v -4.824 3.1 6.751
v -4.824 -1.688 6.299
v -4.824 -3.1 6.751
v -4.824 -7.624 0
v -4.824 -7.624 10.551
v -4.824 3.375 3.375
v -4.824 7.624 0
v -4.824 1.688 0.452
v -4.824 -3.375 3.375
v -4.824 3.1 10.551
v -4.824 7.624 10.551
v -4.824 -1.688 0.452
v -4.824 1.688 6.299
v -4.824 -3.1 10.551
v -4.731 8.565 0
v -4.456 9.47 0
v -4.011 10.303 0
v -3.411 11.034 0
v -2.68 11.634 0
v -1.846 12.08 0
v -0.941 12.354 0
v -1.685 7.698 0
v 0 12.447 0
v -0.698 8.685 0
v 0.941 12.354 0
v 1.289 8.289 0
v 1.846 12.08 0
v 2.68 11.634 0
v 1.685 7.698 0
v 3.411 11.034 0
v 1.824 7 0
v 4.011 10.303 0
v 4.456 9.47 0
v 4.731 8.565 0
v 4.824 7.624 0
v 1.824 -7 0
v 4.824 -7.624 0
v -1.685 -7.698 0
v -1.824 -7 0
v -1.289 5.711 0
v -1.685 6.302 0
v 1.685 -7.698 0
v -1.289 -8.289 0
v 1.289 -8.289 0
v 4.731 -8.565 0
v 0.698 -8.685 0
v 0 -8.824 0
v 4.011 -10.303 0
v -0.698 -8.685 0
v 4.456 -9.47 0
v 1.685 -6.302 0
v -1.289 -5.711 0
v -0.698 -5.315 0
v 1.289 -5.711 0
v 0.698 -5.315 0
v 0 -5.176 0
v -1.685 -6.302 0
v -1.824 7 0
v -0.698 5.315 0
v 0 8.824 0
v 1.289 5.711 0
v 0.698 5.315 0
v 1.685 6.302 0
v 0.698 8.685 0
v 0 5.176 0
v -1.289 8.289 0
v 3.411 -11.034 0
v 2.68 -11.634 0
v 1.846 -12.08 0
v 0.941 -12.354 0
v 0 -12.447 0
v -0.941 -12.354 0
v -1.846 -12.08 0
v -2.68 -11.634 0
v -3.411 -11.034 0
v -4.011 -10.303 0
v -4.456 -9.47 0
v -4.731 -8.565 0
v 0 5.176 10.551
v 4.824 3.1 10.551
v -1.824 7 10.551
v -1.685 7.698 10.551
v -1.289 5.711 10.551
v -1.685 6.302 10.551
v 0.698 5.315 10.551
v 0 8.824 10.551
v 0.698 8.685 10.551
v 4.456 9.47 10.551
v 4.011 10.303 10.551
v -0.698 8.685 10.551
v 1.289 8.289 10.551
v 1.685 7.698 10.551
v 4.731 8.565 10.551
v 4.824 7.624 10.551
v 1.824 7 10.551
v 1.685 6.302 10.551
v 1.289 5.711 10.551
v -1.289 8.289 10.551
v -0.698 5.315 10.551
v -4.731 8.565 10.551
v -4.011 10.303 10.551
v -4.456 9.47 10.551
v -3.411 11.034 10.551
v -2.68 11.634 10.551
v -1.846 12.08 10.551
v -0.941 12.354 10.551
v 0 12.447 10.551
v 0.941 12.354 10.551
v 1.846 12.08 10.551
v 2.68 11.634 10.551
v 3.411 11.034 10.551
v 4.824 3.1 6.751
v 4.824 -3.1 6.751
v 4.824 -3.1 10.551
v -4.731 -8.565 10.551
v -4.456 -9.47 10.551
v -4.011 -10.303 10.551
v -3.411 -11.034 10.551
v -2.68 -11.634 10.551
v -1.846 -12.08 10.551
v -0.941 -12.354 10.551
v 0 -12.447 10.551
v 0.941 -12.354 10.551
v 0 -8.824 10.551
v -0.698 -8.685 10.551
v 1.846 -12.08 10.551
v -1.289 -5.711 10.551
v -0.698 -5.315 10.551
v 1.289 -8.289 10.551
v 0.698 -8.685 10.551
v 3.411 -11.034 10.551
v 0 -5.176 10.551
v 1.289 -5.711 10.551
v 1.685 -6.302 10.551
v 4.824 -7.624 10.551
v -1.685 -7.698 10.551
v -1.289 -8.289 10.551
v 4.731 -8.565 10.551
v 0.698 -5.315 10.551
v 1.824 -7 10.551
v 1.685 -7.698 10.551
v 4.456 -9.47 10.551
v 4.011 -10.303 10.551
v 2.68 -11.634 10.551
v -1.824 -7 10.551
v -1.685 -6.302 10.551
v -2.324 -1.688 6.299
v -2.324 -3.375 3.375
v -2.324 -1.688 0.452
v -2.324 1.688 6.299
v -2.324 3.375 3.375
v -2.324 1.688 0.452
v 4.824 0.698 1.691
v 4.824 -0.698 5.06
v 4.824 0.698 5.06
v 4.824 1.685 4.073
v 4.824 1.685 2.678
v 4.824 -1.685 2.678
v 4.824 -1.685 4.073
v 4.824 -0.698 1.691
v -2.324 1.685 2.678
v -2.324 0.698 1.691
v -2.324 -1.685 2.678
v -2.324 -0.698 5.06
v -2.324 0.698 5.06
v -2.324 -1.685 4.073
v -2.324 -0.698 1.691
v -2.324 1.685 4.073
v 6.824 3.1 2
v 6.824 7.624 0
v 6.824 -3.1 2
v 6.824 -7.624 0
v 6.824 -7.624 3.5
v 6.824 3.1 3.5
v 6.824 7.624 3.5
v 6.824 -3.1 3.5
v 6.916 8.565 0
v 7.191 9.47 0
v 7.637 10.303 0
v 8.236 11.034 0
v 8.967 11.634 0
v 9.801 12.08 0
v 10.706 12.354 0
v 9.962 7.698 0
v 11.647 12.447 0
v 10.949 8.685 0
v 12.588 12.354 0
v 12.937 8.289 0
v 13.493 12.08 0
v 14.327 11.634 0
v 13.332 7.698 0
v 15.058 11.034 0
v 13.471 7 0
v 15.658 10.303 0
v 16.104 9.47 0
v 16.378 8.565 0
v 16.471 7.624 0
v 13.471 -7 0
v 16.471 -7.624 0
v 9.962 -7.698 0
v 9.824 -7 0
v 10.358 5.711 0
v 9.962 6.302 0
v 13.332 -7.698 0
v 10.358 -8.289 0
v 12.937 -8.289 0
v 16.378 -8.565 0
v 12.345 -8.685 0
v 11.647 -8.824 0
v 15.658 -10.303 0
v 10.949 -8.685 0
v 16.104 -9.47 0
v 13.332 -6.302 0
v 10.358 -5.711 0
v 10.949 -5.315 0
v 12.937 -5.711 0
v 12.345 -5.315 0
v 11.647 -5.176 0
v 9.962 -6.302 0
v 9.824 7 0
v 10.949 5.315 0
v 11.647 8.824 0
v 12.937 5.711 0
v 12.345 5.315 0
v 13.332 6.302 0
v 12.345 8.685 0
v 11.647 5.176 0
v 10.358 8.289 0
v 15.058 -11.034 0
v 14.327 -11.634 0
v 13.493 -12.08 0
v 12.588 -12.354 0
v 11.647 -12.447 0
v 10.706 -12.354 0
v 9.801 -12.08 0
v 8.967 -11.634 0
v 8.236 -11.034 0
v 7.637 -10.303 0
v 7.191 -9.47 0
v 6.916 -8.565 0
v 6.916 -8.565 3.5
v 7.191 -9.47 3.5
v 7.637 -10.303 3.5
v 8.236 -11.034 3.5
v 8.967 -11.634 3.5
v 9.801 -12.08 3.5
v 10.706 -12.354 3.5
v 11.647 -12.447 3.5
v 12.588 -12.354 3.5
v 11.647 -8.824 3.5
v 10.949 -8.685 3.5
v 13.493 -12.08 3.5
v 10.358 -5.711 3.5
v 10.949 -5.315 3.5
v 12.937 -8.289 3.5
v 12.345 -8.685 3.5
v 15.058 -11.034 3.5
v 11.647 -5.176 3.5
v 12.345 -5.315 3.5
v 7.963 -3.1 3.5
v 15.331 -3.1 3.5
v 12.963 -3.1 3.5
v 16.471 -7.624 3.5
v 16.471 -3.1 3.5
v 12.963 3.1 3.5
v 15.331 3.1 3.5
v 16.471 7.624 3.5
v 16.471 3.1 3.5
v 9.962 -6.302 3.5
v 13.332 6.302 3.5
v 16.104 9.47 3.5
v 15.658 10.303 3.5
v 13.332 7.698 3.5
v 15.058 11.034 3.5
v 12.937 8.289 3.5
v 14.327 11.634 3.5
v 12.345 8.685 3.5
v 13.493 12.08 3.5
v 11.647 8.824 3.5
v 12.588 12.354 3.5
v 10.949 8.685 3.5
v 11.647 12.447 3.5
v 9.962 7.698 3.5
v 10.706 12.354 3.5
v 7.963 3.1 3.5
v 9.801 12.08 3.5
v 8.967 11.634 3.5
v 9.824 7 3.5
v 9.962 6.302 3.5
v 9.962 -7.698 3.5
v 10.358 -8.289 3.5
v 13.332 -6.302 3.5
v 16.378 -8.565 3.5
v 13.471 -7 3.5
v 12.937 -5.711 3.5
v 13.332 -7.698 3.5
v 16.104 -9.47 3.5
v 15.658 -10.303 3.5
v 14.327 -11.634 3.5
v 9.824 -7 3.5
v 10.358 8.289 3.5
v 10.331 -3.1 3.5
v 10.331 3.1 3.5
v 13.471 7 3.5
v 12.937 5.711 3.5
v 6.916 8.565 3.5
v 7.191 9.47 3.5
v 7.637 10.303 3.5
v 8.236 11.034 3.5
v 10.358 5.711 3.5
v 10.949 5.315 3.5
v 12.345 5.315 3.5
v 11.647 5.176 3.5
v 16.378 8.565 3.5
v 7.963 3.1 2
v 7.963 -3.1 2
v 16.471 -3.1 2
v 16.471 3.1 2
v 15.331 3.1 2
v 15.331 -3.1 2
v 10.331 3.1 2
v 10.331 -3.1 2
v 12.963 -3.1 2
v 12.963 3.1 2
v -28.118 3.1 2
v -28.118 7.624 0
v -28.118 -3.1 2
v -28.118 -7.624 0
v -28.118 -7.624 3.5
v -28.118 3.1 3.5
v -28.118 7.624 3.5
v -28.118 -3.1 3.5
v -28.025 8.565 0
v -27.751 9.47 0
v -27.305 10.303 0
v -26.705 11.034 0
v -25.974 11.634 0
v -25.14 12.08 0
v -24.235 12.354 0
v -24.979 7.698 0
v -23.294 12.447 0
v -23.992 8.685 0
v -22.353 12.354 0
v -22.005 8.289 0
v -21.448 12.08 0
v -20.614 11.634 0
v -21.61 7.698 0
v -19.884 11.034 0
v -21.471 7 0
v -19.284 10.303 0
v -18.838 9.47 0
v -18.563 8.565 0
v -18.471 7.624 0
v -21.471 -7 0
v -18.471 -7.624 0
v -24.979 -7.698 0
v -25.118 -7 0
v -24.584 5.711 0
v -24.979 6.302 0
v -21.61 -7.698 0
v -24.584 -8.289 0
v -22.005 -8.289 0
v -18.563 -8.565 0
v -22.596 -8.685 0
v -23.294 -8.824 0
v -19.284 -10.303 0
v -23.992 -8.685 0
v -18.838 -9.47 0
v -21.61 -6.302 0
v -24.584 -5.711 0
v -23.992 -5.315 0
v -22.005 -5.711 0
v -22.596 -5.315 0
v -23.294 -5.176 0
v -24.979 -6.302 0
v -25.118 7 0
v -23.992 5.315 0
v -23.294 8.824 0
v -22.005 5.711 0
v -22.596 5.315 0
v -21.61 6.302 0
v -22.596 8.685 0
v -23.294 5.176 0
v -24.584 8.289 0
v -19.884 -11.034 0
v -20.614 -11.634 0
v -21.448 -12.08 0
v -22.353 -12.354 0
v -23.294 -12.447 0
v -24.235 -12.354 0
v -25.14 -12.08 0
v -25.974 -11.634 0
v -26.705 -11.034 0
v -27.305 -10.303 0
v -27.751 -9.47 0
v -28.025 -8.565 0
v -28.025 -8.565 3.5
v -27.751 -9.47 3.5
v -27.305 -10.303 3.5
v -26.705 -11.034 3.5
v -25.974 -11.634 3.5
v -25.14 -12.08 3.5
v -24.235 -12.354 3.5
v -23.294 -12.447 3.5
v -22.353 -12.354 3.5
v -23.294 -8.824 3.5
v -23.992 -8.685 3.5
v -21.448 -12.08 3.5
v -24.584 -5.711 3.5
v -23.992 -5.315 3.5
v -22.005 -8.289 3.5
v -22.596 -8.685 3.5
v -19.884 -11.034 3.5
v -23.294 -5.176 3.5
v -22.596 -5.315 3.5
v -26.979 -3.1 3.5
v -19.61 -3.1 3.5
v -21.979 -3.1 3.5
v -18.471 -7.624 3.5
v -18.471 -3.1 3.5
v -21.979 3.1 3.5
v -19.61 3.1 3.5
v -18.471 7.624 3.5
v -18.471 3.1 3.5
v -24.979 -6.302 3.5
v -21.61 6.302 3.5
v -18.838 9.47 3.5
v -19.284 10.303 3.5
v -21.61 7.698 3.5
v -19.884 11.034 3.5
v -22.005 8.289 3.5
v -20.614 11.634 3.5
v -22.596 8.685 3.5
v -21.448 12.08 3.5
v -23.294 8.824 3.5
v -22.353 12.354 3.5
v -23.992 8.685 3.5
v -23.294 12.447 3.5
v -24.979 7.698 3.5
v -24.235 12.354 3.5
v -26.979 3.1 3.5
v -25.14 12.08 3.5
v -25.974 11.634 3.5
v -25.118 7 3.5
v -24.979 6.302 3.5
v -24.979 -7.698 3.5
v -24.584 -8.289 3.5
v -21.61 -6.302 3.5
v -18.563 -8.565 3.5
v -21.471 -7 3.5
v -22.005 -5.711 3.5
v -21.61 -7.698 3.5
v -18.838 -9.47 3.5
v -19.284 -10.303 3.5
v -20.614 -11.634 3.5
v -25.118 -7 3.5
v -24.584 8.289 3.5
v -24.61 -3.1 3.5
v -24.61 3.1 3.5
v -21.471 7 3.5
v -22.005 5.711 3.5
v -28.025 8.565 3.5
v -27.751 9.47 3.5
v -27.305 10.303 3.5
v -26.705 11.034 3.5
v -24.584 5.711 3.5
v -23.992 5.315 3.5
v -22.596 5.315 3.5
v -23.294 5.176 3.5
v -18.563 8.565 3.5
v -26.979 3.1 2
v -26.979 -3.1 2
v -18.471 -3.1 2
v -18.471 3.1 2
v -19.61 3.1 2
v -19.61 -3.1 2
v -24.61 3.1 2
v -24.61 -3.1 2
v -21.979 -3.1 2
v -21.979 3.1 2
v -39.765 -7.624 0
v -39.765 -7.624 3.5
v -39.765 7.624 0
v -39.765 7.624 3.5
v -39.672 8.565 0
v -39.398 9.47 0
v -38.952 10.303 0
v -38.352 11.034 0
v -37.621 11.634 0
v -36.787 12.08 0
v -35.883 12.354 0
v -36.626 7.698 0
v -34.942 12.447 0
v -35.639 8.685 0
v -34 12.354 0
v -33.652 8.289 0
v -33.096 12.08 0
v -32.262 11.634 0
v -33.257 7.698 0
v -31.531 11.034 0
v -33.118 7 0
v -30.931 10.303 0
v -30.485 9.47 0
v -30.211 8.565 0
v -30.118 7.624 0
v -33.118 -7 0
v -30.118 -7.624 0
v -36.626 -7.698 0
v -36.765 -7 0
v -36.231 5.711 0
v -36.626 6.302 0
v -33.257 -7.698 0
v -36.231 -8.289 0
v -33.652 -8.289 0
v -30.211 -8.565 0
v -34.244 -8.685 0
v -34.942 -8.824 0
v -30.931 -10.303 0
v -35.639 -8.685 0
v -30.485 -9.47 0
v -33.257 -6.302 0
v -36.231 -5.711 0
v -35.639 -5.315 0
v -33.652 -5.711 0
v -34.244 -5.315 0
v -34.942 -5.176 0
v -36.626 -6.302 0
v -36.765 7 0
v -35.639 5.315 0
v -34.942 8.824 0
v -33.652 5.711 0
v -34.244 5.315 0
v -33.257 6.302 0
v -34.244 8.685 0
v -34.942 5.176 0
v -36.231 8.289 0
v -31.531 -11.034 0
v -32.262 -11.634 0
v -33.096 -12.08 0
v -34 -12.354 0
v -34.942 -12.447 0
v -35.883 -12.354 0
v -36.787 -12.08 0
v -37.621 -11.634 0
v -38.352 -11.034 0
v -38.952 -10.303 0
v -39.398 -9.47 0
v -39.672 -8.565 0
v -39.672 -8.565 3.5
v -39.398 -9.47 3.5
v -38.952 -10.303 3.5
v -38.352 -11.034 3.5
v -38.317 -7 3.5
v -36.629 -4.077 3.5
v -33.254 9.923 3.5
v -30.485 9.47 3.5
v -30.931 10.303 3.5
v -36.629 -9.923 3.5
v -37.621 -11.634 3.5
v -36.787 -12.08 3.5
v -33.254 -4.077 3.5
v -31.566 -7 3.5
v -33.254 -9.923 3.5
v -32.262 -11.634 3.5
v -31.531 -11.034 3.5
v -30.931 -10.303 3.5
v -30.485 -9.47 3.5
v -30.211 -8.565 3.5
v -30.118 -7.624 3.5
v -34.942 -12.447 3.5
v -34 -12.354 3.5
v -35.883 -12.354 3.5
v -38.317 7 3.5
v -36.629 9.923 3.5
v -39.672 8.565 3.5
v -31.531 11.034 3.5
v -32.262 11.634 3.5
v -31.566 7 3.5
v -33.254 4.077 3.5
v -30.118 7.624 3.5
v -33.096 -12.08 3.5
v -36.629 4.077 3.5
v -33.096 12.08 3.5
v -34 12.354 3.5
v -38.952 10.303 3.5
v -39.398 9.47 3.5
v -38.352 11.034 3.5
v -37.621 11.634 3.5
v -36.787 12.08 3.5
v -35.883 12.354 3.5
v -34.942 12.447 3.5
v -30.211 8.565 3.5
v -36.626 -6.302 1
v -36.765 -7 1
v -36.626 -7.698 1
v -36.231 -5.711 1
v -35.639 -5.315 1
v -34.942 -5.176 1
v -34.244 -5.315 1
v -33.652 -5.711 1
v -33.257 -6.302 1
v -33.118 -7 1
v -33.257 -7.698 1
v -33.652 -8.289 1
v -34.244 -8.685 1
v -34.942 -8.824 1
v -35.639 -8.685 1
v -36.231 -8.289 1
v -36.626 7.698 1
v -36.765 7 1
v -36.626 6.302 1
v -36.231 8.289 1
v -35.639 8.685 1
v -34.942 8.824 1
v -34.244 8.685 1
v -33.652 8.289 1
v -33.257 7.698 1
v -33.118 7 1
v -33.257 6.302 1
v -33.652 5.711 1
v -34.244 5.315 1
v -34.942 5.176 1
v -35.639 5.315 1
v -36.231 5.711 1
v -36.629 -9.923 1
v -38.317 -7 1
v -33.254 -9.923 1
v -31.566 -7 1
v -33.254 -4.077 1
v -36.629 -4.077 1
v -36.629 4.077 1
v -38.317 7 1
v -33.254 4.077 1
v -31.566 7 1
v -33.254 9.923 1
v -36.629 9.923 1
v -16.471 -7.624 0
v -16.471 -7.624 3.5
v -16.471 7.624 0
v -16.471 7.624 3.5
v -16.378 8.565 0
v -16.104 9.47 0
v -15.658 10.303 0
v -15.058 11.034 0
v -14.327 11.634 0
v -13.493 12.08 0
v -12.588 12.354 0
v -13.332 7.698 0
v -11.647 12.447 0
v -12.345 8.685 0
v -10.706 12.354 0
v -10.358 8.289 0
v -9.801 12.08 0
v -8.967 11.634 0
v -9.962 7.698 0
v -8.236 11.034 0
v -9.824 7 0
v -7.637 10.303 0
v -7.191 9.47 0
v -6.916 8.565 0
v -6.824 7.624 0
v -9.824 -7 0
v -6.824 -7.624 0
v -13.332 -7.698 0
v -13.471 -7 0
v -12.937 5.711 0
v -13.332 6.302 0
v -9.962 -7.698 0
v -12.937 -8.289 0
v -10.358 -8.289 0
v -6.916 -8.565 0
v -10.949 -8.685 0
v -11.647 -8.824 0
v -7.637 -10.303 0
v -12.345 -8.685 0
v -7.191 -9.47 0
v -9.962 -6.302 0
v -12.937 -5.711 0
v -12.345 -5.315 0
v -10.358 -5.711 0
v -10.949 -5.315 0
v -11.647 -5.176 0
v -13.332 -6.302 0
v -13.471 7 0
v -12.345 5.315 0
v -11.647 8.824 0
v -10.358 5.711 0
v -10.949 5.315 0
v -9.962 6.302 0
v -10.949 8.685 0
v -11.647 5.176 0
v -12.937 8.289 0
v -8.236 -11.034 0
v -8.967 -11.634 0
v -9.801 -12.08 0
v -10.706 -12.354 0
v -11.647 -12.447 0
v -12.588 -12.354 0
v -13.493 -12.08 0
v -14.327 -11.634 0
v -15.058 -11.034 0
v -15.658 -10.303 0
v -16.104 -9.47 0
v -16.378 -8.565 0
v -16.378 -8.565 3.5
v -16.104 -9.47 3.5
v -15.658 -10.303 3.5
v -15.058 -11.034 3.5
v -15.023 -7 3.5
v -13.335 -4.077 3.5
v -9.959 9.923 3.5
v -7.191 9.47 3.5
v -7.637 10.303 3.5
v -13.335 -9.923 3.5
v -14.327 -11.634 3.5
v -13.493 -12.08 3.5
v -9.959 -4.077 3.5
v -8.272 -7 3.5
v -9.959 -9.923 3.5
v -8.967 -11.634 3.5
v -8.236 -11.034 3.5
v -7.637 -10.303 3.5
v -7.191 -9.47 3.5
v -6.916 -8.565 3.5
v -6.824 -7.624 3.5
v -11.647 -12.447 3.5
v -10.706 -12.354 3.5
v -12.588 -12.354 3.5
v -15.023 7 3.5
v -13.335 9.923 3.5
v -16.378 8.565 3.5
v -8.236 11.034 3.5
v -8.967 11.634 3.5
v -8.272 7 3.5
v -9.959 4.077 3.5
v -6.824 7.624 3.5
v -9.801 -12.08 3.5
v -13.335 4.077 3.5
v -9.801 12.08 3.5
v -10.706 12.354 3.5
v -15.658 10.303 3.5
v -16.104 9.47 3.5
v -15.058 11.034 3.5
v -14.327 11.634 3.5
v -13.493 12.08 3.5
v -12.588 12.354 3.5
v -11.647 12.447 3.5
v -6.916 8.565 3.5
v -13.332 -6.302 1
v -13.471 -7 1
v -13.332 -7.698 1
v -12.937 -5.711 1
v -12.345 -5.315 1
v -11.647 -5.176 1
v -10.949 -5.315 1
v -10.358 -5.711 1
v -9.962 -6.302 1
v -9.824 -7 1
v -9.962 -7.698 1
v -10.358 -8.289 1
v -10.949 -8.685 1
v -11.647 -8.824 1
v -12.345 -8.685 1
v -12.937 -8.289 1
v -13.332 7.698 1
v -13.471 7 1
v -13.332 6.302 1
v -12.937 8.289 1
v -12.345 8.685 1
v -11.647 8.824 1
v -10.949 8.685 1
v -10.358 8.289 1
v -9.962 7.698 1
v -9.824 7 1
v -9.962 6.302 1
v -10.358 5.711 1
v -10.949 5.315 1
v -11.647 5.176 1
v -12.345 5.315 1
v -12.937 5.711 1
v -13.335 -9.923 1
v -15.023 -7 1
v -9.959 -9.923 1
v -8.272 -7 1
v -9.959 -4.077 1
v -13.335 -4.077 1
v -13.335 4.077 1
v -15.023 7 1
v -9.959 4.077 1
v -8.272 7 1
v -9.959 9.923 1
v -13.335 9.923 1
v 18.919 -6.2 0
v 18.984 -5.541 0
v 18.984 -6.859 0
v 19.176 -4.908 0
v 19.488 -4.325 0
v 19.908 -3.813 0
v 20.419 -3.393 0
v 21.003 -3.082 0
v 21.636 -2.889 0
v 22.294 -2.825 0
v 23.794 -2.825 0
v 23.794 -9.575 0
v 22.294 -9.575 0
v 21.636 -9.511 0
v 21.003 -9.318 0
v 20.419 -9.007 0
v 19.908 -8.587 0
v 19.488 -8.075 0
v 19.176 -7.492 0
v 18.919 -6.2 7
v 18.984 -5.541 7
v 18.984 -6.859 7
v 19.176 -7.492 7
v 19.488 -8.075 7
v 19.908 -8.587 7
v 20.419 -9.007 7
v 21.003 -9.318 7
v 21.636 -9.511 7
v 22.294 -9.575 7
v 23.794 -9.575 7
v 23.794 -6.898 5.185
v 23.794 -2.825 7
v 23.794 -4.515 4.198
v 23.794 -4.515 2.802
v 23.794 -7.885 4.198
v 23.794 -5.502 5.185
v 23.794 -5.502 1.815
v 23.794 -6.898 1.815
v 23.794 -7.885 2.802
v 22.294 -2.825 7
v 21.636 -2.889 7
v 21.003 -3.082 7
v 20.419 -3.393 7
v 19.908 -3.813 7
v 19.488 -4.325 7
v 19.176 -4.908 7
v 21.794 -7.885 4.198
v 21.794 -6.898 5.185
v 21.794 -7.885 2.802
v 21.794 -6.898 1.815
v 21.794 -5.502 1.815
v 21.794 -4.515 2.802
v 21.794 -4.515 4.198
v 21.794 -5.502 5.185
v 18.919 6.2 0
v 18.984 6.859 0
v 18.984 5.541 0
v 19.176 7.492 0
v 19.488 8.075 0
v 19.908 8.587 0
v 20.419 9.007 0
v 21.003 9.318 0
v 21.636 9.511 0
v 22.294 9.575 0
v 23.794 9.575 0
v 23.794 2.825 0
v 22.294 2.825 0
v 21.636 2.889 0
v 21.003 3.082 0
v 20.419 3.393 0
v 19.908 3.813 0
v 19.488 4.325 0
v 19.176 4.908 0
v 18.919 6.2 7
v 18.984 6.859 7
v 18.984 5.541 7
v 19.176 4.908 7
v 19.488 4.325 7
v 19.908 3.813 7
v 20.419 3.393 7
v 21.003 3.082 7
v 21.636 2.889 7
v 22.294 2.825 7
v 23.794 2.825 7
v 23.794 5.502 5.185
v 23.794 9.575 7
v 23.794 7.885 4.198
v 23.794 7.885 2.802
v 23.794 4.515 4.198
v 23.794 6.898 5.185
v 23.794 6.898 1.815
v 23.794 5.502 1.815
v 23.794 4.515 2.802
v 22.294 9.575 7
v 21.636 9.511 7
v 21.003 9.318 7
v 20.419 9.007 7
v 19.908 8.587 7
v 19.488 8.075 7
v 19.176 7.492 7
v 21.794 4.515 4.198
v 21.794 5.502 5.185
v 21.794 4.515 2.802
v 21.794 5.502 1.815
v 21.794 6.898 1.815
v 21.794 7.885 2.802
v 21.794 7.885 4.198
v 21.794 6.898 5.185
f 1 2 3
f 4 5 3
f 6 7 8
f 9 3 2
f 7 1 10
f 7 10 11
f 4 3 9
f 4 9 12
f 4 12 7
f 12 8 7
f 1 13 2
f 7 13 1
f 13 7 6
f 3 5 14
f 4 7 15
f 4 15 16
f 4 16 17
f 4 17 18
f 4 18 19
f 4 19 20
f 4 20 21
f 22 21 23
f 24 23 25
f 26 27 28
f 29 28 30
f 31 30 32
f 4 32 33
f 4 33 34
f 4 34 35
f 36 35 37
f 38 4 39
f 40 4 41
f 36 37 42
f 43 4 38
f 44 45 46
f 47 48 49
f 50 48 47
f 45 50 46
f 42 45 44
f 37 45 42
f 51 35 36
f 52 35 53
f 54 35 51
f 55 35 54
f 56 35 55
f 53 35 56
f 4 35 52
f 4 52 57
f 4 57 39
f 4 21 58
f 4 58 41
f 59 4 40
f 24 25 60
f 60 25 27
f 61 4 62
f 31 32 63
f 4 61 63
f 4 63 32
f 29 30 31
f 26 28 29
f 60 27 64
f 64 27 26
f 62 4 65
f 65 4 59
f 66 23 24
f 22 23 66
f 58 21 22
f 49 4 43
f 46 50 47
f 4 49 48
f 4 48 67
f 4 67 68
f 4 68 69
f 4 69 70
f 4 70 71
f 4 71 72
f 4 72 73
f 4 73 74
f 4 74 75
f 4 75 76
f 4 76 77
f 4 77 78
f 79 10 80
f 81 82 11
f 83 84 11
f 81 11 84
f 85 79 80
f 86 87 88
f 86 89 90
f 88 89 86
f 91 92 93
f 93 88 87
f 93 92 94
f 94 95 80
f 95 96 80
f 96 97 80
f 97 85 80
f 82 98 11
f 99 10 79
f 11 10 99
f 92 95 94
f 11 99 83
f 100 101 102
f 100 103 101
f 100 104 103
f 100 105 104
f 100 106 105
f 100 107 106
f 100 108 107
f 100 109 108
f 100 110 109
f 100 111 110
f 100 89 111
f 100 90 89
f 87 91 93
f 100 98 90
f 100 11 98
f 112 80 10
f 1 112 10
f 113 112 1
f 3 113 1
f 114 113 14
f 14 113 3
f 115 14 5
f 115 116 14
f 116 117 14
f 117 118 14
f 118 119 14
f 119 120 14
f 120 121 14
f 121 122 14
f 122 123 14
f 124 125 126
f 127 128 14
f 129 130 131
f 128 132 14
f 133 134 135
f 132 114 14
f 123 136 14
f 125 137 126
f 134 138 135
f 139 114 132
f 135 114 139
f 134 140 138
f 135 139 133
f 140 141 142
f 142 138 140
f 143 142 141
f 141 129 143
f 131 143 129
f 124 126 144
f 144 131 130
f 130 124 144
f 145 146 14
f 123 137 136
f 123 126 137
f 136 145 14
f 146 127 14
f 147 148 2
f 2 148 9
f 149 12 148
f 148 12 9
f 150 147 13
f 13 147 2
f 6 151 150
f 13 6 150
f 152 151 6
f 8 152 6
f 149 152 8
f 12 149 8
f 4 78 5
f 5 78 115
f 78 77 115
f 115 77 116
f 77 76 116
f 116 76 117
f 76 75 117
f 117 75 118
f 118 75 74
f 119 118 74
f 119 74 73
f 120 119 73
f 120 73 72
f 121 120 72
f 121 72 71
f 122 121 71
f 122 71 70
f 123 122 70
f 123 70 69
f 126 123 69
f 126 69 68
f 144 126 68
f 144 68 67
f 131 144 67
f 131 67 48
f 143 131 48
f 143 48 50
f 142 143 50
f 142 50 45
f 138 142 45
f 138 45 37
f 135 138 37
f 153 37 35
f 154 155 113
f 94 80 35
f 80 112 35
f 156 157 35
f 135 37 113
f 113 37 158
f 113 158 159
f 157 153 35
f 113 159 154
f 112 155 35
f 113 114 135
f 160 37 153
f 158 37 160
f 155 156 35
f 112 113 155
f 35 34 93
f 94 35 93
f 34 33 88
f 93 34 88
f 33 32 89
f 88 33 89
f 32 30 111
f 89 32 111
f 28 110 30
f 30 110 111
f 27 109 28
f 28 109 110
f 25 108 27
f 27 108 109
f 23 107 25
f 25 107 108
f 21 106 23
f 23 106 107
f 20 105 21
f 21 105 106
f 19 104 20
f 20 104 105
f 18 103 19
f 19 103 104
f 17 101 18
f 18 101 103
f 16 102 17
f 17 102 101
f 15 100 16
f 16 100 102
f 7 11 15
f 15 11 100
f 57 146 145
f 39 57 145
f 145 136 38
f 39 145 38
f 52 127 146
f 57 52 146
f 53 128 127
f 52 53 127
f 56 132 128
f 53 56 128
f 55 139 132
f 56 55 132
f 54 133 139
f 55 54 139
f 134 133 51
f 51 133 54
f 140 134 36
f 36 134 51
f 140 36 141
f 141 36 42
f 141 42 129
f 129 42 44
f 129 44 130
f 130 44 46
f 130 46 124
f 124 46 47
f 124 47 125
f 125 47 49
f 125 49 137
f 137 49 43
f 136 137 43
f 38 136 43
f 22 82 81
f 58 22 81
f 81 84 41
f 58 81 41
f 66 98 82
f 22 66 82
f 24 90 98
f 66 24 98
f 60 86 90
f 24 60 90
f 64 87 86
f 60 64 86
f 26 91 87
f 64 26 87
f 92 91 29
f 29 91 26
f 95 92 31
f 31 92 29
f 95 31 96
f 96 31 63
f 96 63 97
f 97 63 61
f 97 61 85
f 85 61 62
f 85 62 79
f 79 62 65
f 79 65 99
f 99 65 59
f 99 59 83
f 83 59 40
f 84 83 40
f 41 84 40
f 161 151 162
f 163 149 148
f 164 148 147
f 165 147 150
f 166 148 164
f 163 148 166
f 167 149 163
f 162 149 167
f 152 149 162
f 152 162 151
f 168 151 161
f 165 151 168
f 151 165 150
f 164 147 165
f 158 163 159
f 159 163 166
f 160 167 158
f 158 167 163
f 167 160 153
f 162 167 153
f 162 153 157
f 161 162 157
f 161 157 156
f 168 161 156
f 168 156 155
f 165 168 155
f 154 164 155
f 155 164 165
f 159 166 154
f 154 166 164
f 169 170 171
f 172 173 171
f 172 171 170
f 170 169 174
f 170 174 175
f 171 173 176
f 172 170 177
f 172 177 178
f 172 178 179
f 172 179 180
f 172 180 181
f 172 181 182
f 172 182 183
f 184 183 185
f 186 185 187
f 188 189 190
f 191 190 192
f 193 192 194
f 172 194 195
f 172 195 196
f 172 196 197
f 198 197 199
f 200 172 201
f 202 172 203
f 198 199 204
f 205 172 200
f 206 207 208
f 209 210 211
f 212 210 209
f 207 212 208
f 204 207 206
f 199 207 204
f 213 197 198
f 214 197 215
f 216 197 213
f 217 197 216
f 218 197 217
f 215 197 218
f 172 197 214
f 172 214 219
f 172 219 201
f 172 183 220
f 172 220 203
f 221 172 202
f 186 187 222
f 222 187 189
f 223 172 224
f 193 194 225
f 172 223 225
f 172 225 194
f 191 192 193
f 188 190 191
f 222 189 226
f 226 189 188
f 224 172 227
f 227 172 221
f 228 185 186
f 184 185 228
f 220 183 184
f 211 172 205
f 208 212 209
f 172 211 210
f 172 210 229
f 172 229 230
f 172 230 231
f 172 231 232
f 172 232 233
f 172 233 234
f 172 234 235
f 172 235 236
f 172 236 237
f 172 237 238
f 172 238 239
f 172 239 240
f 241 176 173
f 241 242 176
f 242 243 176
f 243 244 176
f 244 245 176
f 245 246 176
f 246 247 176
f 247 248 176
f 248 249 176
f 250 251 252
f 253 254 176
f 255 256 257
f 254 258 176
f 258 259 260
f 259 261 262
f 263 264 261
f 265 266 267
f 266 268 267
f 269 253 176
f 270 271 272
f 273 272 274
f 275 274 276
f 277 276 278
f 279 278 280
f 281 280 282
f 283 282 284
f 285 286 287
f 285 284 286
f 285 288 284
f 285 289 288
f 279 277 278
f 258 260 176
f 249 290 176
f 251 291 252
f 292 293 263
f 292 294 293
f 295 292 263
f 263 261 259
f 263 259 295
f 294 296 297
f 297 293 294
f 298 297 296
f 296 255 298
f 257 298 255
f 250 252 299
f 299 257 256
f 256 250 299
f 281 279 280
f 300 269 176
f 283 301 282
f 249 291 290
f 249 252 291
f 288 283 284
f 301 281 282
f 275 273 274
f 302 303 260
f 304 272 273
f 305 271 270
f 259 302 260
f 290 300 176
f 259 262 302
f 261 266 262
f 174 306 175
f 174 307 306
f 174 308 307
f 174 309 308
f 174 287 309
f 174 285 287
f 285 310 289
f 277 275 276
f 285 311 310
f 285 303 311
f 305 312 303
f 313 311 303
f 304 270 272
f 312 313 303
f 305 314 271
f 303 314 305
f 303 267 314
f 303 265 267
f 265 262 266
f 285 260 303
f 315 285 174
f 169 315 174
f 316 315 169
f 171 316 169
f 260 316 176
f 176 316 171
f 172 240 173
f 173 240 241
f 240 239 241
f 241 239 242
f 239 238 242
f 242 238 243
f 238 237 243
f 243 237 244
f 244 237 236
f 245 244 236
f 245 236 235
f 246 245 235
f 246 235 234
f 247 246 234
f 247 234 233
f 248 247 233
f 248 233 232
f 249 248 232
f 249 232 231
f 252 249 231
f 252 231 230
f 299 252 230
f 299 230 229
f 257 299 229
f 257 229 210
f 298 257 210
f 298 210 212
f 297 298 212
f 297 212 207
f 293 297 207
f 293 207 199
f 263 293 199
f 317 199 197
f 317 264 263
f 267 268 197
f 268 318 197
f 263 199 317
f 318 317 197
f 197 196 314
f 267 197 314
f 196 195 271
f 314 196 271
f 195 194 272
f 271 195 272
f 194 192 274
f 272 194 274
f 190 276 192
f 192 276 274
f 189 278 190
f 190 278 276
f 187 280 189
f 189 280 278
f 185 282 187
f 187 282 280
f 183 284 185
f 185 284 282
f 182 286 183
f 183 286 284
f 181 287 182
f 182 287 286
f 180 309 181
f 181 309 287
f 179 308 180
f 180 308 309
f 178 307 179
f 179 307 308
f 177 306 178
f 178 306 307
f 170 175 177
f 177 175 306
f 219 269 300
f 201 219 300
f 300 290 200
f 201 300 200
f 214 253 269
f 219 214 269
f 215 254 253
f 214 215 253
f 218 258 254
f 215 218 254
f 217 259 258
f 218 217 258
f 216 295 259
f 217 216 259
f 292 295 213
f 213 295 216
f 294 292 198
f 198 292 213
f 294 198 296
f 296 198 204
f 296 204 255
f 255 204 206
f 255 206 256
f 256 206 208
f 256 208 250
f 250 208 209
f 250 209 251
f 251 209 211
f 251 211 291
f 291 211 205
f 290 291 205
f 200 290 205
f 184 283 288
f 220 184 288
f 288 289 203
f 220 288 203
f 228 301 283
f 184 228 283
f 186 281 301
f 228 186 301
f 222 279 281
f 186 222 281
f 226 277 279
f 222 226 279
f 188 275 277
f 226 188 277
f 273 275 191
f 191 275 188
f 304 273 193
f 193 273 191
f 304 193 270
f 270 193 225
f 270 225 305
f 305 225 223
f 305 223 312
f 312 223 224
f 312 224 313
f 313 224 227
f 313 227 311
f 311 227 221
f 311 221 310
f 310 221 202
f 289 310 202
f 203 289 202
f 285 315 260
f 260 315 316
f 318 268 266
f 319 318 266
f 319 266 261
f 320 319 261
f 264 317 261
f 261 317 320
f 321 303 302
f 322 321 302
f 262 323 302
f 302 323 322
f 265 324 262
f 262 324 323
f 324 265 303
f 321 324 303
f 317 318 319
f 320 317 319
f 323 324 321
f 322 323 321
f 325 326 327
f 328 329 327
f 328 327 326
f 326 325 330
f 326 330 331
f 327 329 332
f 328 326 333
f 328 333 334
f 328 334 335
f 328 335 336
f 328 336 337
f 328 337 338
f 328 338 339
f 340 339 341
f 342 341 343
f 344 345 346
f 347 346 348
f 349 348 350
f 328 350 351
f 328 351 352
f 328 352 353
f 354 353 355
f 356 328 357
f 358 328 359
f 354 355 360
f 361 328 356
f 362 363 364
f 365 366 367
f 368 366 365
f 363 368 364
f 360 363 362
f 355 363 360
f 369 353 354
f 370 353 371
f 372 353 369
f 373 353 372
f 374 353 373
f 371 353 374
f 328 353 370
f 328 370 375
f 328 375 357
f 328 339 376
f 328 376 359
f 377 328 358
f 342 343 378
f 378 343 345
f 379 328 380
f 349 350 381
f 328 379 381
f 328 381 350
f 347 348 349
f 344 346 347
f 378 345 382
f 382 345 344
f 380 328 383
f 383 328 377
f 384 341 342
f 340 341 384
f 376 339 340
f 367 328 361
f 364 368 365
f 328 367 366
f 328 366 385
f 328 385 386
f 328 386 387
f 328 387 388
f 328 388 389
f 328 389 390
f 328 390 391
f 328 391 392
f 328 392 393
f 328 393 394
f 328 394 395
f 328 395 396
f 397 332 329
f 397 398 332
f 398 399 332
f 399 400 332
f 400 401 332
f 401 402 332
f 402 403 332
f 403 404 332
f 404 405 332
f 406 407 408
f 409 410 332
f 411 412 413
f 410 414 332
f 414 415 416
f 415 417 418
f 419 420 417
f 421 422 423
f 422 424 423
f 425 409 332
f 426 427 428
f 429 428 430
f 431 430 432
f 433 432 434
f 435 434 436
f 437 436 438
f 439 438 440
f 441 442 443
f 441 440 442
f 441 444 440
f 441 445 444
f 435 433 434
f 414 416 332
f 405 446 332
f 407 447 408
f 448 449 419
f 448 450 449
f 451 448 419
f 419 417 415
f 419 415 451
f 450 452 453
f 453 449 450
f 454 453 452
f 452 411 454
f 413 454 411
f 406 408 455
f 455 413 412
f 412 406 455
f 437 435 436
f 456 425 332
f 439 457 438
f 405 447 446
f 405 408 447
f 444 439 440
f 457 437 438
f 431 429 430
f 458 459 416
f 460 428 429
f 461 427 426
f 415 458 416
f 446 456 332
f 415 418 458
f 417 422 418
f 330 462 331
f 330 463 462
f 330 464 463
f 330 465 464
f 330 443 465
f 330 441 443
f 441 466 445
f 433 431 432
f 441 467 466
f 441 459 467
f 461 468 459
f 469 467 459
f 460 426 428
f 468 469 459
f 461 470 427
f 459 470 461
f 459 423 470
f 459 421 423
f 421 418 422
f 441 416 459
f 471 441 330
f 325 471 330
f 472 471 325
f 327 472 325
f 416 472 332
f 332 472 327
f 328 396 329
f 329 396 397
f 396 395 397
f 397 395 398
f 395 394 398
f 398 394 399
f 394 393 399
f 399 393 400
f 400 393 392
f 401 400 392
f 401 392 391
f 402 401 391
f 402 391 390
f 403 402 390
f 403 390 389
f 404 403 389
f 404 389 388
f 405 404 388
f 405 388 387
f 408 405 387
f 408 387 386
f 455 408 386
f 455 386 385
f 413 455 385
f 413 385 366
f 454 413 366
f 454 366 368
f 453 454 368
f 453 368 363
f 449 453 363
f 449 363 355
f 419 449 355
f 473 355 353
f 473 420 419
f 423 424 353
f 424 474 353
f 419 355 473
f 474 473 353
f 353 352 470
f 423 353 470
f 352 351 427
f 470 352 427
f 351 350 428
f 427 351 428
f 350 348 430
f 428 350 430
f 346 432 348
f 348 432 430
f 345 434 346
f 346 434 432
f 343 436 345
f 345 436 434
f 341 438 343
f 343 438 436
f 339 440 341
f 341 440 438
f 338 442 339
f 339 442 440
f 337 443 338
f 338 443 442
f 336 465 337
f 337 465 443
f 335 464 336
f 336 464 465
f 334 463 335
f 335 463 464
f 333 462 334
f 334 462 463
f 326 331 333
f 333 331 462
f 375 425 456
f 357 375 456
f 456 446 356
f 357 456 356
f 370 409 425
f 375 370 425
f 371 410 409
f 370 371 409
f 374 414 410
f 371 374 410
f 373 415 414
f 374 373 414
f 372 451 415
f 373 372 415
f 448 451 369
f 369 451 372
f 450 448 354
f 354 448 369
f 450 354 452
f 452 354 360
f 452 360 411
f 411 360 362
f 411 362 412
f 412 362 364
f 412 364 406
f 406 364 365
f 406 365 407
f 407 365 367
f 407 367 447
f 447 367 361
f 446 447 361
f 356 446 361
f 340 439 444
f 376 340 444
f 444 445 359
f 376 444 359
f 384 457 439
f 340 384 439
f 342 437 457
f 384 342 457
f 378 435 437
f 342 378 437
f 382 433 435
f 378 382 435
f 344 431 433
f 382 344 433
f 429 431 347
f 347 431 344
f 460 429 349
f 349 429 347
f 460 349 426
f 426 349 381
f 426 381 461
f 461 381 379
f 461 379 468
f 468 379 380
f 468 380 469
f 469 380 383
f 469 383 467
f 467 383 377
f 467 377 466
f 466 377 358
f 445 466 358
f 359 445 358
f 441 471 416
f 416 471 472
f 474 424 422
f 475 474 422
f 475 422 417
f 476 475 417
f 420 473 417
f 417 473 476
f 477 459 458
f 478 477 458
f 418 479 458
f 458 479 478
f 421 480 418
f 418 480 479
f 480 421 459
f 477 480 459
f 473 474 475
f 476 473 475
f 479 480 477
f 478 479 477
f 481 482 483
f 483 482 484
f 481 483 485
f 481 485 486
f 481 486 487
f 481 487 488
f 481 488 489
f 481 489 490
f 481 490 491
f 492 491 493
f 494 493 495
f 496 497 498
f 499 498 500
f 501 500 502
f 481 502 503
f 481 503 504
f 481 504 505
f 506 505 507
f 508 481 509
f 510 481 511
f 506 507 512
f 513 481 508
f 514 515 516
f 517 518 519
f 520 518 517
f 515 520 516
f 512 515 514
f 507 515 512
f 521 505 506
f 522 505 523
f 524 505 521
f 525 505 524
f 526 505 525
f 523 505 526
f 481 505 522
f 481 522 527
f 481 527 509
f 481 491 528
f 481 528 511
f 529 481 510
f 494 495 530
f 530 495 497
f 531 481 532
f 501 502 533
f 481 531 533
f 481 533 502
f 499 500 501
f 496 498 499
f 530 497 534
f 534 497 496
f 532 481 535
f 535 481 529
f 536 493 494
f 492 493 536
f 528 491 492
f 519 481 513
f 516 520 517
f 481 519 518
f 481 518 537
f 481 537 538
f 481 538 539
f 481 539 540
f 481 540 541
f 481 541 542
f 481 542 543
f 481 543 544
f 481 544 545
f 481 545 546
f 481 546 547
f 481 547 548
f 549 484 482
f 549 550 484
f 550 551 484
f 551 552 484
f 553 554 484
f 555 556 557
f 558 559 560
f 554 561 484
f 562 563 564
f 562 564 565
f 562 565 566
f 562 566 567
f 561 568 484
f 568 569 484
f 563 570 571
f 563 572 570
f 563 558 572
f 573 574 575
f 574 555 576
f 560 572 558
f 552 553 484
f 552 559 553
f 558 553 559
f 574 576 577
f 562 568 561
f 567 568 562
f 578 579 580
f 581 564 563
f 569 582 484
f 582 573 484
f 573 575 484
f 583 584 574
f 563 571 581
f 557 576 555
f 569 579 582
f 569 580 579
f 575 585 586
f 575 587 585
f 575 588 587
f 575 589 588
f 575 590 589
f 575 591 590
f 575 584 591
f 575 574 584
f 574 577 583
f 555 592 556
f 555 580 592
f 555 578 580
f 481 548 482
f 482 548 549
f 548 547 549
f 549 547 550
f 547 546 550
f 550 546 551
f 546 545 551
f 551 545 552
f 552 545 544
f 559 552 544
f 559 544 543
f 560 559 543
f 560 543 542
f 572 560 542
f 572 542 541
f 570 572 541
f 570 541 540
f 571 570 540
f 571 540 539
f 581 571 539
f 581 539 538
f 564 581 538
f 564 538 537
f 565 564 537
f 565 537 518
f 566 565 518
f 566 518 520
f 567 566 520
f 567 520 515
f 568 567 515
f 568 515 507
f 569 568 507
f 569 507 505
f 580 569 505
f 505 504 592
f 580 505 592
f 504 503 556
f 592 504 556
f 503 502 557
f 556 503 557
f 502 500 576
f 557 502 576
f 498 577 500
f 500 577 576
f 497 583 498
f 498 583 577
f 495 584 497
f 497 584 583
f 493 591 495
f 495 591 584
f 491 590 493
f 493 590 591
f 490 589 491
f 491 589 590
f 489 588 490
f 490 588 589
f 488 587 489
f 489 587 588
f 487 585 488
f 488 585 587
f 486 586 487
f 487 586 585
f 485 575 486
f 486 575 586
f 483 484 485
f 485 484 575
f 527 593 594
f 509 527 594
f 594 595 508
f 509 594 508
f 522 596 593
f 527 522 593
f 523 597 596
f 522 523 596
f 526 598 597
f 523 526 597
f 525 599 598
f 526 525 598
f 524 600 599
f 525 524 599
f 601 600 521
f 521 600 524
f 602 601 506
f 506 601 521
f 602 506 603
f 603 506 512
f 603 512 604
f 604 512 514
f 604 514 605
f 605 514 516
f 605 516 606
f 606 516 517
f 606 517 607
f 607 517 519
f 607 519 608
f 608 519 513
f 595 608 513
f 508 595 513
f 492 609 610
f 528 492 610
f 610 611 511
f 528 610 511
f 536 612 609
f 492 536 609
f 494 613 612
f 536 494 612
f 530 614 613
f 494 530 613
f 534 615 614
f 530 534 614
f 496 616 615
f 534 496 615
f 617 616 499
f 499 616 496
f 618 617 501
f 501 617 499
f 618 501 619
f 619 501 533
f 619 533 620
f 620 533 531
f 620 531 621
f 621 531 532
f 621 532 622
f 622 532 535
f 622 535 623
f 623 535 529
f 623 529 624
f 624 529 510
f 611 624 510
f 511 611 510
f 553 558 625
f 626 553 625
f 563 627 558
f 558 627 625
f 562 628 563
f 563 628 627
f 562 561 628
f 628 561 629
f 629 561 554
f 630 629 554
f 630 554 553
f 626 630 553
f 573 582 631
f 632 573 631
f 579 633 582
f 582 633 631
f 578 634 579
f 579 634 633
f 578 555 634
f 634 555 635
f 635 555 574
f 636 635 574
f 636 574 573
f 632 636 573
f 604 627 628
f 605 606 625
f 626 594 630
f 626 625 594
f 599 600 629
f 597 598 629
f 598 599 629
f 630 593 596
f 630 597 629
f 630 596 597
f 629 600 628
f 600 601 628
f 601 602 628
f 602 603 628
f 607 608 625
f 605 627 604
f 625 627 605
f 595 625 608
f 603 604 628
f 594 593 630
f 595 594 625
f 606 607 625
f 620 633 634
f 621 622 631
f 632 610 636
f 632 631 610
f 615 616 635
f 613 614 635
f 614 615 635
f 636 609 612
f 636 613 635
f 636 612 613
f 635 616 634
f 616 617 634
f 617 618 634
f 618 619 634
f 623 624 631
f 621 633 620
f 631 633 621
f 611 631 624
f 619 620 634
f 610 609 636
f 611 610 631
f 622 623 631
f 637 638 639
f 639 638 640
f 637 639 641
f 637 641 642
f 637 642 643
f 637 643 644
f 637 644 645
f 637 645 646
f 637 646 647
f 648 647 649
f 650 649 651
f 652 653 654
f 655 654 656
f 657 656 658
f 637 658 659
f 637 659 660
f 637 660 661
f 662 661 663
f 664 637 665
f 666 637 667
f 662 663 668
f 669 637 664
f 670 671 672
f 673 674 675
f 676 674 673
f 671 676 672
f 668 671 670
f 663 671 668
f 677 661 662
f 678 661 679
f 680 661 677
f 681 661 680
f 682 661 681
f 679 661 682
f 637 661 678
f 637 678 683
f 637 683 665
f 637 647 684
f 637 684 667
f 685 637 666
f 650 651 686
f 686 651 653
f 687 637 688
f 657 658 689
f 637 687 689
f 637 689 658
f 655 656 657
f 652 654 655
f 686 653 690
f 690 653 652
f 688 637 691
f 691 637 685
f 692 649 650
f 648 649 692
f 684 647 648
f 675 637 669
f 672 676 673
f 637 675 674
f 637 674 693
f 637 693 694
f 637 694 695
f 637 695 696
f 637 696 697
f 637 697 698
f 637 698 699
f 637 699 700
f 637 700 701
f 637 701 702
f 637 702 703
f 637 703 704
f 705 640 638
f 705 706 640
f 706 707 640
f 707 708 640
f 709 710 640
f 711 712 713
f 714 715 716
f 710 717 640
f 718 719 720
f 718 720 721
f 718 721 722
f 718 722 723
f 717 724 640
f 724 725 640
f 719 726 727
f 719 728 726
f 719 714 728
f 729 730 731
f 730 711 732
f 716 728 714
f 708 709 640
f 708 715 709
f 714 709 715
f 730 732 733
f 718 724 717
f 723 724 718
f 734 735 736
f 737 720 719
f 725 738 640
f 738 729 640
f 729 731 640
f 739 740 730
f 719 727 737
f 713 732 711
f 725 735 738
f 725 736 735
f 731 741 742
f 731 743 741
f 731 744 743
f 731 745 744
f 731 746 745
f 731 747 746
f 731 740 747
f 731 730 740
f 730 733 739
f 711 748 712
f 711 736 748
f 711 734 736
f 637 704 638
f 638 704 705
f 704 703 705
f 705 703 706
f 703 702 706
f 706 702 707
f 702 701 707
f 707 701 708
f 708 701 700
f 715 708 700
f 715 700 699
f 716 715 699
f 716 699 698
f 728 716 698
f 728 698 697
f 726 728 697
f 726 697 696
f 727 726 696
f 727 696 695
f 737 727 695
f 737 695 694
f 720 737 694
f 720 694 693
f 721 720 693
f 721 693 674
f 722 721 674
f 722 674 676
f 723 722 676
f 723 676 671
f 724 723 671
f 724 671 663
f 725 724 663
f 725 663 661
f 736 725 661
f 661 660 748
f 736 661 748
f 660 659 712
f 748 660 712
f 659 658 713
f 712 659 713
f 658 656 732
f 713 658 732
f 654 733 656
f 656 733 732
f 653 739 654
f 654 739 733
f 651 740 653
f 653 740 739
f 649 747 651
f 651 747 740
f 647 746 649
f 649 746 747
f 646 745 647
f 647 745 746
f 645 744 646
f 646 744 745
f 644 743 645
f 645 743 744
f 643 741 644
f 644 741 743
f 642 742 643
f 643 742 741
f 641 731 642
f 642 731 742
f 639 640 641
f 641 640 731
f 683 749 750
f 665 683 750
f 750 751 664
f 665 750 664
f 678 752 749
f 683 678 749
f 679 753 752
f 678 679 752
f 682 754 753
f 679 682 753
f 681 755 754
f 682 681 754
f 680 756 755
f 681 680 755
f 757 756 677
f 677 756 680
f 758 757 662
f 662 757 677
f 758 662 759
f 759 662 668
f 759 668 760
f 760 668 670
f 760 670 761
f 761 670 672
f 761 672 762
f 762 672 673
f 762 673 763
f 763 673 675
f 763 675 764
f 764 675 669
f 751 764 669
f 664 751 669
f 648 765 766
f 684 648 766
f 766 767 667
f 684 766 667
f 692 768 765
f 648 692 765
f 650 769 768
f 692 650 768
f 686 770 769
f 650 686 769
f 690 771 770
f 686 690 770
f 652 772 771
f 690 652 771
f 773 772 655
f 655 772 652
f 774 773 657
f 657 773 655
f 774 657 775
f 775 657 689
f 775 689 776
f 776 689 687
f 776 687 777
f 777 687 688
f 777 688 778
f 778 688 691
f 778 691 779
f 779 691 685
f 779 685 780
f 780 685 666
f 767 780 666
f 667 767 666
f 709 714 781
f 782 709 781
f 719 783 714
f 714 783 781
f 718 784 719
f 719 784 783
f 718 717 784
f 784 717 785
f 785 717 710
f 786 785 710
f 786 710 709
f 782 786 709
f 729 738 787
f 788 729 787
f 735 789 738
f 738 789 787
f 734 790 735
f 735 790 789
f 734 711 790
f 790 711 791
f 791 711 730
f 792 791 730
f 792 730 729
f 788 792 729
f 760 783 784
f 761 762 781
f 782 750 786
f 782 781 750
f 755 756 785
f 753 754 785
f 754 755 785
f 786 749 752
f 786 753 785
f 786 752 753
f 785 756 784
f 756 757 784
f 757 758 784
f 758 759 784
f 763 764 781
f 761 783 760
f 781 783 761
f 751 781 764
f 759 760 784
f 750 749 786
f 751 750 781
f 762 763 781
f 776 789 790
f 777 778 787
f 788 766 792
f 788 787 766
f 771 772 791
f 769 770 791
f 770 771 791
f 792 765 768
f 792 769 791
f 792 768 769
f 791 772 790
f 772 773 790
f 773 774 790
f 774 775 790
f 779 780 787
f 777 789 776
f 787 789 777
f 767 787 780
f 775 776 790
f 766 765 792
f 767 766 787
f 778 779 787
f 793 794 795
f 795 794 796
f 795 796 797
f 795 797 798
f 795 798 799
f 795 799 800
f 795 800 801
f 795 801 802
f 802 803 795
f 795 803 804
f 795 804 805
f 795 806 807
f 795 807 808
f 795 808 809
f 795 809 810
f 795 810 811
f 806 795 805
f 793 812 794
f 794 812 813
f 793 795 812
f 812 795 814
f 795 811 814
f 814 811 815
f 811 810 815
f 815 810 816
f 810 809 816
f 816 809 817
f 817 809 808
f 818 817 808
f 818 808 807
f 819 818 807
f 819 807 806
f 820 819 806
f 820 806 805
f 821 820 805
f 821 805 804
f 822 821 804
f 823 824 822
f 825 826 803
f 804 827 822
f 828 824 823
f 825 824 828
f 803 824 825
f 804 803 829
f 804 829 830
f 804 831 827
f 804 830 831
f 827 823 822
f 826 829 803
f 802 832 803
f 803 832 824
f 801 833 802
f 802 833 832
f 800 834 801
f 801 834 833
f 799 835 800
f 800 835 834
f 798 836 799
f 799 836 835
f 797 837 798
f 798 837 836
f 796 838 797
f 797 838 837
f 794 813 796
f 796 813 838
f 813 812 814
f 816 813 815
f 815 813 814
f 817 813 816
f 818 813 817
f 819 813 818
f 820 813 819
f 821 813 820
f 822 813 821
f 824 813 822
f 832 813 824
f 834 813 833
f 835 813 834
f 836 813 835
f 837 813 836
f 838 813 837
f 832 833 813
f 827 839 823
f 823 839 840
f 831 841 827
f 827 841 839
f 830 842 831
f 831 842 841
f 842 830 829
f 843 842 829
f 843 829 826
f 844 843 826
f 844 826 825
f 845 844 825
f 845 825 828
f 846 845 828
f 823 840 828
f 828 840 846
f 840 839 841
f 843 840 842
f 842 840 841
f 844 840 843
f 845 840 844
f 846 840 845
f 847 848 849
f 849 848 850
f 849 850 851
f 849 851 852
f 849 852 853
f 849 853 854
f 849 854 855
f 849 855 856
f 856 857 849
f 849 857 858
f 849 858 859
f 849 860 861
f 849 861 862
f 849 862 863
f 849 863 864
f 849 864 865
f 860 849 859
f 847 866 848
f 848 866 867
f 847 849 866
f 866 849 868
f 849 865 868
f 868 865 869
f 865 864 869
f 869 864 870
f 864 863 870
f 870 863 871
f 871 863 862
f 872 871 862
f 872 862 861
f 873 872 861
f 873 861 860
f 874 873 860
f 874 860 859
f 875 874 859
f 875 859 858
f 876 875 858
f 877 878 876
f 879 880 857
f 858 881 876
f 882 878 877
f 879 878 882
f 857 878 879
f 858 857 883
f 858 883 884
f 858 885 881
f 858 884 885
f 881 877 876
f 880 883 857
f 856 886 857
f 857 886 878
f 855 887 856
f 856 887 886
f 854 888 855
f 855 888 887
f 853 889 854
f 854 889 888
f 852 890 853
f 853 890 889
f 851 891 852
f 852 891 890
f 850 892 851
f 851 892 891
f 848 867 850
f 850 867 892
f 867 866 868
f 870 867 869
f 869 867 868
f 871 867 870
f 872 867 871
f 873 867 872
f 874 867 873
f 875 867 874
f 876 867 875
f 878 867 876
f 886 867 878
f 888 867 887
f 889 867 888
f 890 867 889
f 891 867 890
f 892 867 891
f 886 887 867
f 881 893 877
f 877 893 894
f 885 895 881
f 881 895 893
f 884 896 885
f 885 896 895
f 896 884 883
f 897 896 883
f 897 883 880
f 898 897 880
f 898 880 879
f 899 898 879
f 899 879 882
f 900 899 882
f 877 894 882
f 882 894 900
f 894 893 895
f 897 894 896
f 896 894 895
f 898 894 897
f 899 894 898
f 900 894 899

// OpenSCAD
belt_pitch = 5;
belt_width = 6.2;
belt_height = 3.8;

hole_spacing = 14;

ram_length = 1.5;

m3_diameter = 3 / cos(180 / 8) + 0.4;
m3_radius = m3_diameter / 2;

m3_nut_diameter = 5.5 / cos(180 / 6) + 0.4;
m3_nut_radius = m3_nut_diameter / 2;

m3_nut_depth = 2.5;

wall = 3;
extrusion_width = 0.7;

clamp_height = 3.5;
belt_depth = 2;

ram_height = 7;

module clamp(h=10) {
	translate([-wall - m3_radius, 0, 0])
	difference() {
		intersection() {
			translate([0, belt_width / -2 - m3_diameter - wall - extrusion_width * 2 - ((hole_spacing-10)/2), 0]) cube([wall * 2 + m3_diameter, belt_width + m3_diameter * 2 + wall * 2 + extrusion_width * 4 + (hole_spacing-10), h]);
			union() {
				translate([wall + m3_radius, belt_width / 2 + m3_radius + extrusion_width + ((hole_spacing-10)/2), 0]) cylinder(r=wall + m3_radius, h=h + 1, $fn=32);
				translate([wall + m3_radius, -belt_width / 2 - m3_radius - extrusion_width - ((hole_spacing-10)/2), 0]) cylinder(r=wall + m3_radius, h=h + 1, $fn=32);
				translate([0, -belt_width / 2 - m3_radius - extrusion_width - ((hole_spacing-10)/2), 0]) cube([wall * 2 + m3_diameter, belt_width + m3_diameter  + extrusion_width * 2 + (hole_spacing-10), h + 1]);
			}
		}
		translate([wall + m3_radius, hole_spacing/2, -1]) cylinder(r=m3_radius, h=h + 2, $fn=16);
		translate([wall + m3_radius, -hole_spacing/2, -1]) cylinder(r=m3_radius, h=h + 2, $fn=16);
	}
}

module clamp_base() {
	difference() {
		clamp(belt_height + m3_nut_diameter);

		translate([-1 - wall - m3_radius, -belt_width / 2, m3_nut_diameter]) cube([wall * 4, belt_width, belt_height + 1]);
		translate([-1 - wall - m3_radius, 0, m3_nut_radius]) rotate([0, 90, 0]) rotate([0, 0, 180 / 8]) cylinder(r=m3_radius, h=wall * 4, $fn=8);
		translate([-1 - wall - m3_radius, 0, m3_nut_radius]) rotate([0, 90, 0]) rotate([0, 0, 180 / 6]) cylinder(r=m3_nut_radius, h=1 + m3_nut_depth, $fn=6);
	}
}

module clamp_top() {
	difference() {
		clamp(clamp_height);
		translate([ - belt_pitch / 3.8, -belt_width / 2, wall - 1]) cube([belt_pitch / 1.9, belt_width, 5]);
		translate([- belt_pitch / 3.8 + belt_pitch, -belt_width / 2, wall - 1]) cube([belt_pitch / 1.9, belt_width, 5]);
		translate([- belt_pitch / 3.8 - belt_pitch, -belt_width / 2, wall - 1]) cube([belt_pitch / 1.9, belt_width, 5]);
	}
}

module clamp_trap() {
	difference() {
		clamp(clamp_height);
		translate([0, hole_spacing/2, max(clamp_height - m3_nut_depth, 1)]) cylinder(r=m3_nut_radius, h=m3_nut_depth + 1, $fn=6);
		translate([0, -hole_spacing/2, max(clamp_height - m3_nut_depth, 1)]) cylinder(r=m3_nut_radius, h=m3_nut_depth + 1, $fn=6);
	}
}

module ram() {
	difference() {
		union() {
			cylinder(r=m3_nut_radius, h=ram_height, $fn=32);
			translate([0, -m3_nut_radius, 0]) cube([ram_length + 0.1, m3_nut_diameter, ram_height]);
		}
		translate([ram_length, -m3_nut_radius - 1, -1]) cube([m3_nut_diameter + 2, m3_nut_diameter + 2, ram_height + 2]);
		translate([-0.5, 0, ram_height / 2]) rotate([0, 90, 0]) rotate([0, 0, 180 / 8]) cylinder(r=m3_radius, h=2 + ram_length, $fn=8);
	}
}

clamp_base();
translate([wall * 2 + m3_diameter + 2, 0, 0]) clamp_top();
translate([-wall * 4 - m3_diameter * 2 - 4, 0, 0]) clamp_top();
translate([-wall * 6 - m3_diameter * 3 - 6, 0, 0]) clamp_trap();
translate([-wall * 2 - m3_diameter - 2, 0, 0]) clamp_trap();
translate([wall * 4 + m3_diameter * 2 + 3, -belt_width, 0]) ram();
translate([wall * 4 + m3_diameter * 2 + 3, belt_width, 0]) ram();
